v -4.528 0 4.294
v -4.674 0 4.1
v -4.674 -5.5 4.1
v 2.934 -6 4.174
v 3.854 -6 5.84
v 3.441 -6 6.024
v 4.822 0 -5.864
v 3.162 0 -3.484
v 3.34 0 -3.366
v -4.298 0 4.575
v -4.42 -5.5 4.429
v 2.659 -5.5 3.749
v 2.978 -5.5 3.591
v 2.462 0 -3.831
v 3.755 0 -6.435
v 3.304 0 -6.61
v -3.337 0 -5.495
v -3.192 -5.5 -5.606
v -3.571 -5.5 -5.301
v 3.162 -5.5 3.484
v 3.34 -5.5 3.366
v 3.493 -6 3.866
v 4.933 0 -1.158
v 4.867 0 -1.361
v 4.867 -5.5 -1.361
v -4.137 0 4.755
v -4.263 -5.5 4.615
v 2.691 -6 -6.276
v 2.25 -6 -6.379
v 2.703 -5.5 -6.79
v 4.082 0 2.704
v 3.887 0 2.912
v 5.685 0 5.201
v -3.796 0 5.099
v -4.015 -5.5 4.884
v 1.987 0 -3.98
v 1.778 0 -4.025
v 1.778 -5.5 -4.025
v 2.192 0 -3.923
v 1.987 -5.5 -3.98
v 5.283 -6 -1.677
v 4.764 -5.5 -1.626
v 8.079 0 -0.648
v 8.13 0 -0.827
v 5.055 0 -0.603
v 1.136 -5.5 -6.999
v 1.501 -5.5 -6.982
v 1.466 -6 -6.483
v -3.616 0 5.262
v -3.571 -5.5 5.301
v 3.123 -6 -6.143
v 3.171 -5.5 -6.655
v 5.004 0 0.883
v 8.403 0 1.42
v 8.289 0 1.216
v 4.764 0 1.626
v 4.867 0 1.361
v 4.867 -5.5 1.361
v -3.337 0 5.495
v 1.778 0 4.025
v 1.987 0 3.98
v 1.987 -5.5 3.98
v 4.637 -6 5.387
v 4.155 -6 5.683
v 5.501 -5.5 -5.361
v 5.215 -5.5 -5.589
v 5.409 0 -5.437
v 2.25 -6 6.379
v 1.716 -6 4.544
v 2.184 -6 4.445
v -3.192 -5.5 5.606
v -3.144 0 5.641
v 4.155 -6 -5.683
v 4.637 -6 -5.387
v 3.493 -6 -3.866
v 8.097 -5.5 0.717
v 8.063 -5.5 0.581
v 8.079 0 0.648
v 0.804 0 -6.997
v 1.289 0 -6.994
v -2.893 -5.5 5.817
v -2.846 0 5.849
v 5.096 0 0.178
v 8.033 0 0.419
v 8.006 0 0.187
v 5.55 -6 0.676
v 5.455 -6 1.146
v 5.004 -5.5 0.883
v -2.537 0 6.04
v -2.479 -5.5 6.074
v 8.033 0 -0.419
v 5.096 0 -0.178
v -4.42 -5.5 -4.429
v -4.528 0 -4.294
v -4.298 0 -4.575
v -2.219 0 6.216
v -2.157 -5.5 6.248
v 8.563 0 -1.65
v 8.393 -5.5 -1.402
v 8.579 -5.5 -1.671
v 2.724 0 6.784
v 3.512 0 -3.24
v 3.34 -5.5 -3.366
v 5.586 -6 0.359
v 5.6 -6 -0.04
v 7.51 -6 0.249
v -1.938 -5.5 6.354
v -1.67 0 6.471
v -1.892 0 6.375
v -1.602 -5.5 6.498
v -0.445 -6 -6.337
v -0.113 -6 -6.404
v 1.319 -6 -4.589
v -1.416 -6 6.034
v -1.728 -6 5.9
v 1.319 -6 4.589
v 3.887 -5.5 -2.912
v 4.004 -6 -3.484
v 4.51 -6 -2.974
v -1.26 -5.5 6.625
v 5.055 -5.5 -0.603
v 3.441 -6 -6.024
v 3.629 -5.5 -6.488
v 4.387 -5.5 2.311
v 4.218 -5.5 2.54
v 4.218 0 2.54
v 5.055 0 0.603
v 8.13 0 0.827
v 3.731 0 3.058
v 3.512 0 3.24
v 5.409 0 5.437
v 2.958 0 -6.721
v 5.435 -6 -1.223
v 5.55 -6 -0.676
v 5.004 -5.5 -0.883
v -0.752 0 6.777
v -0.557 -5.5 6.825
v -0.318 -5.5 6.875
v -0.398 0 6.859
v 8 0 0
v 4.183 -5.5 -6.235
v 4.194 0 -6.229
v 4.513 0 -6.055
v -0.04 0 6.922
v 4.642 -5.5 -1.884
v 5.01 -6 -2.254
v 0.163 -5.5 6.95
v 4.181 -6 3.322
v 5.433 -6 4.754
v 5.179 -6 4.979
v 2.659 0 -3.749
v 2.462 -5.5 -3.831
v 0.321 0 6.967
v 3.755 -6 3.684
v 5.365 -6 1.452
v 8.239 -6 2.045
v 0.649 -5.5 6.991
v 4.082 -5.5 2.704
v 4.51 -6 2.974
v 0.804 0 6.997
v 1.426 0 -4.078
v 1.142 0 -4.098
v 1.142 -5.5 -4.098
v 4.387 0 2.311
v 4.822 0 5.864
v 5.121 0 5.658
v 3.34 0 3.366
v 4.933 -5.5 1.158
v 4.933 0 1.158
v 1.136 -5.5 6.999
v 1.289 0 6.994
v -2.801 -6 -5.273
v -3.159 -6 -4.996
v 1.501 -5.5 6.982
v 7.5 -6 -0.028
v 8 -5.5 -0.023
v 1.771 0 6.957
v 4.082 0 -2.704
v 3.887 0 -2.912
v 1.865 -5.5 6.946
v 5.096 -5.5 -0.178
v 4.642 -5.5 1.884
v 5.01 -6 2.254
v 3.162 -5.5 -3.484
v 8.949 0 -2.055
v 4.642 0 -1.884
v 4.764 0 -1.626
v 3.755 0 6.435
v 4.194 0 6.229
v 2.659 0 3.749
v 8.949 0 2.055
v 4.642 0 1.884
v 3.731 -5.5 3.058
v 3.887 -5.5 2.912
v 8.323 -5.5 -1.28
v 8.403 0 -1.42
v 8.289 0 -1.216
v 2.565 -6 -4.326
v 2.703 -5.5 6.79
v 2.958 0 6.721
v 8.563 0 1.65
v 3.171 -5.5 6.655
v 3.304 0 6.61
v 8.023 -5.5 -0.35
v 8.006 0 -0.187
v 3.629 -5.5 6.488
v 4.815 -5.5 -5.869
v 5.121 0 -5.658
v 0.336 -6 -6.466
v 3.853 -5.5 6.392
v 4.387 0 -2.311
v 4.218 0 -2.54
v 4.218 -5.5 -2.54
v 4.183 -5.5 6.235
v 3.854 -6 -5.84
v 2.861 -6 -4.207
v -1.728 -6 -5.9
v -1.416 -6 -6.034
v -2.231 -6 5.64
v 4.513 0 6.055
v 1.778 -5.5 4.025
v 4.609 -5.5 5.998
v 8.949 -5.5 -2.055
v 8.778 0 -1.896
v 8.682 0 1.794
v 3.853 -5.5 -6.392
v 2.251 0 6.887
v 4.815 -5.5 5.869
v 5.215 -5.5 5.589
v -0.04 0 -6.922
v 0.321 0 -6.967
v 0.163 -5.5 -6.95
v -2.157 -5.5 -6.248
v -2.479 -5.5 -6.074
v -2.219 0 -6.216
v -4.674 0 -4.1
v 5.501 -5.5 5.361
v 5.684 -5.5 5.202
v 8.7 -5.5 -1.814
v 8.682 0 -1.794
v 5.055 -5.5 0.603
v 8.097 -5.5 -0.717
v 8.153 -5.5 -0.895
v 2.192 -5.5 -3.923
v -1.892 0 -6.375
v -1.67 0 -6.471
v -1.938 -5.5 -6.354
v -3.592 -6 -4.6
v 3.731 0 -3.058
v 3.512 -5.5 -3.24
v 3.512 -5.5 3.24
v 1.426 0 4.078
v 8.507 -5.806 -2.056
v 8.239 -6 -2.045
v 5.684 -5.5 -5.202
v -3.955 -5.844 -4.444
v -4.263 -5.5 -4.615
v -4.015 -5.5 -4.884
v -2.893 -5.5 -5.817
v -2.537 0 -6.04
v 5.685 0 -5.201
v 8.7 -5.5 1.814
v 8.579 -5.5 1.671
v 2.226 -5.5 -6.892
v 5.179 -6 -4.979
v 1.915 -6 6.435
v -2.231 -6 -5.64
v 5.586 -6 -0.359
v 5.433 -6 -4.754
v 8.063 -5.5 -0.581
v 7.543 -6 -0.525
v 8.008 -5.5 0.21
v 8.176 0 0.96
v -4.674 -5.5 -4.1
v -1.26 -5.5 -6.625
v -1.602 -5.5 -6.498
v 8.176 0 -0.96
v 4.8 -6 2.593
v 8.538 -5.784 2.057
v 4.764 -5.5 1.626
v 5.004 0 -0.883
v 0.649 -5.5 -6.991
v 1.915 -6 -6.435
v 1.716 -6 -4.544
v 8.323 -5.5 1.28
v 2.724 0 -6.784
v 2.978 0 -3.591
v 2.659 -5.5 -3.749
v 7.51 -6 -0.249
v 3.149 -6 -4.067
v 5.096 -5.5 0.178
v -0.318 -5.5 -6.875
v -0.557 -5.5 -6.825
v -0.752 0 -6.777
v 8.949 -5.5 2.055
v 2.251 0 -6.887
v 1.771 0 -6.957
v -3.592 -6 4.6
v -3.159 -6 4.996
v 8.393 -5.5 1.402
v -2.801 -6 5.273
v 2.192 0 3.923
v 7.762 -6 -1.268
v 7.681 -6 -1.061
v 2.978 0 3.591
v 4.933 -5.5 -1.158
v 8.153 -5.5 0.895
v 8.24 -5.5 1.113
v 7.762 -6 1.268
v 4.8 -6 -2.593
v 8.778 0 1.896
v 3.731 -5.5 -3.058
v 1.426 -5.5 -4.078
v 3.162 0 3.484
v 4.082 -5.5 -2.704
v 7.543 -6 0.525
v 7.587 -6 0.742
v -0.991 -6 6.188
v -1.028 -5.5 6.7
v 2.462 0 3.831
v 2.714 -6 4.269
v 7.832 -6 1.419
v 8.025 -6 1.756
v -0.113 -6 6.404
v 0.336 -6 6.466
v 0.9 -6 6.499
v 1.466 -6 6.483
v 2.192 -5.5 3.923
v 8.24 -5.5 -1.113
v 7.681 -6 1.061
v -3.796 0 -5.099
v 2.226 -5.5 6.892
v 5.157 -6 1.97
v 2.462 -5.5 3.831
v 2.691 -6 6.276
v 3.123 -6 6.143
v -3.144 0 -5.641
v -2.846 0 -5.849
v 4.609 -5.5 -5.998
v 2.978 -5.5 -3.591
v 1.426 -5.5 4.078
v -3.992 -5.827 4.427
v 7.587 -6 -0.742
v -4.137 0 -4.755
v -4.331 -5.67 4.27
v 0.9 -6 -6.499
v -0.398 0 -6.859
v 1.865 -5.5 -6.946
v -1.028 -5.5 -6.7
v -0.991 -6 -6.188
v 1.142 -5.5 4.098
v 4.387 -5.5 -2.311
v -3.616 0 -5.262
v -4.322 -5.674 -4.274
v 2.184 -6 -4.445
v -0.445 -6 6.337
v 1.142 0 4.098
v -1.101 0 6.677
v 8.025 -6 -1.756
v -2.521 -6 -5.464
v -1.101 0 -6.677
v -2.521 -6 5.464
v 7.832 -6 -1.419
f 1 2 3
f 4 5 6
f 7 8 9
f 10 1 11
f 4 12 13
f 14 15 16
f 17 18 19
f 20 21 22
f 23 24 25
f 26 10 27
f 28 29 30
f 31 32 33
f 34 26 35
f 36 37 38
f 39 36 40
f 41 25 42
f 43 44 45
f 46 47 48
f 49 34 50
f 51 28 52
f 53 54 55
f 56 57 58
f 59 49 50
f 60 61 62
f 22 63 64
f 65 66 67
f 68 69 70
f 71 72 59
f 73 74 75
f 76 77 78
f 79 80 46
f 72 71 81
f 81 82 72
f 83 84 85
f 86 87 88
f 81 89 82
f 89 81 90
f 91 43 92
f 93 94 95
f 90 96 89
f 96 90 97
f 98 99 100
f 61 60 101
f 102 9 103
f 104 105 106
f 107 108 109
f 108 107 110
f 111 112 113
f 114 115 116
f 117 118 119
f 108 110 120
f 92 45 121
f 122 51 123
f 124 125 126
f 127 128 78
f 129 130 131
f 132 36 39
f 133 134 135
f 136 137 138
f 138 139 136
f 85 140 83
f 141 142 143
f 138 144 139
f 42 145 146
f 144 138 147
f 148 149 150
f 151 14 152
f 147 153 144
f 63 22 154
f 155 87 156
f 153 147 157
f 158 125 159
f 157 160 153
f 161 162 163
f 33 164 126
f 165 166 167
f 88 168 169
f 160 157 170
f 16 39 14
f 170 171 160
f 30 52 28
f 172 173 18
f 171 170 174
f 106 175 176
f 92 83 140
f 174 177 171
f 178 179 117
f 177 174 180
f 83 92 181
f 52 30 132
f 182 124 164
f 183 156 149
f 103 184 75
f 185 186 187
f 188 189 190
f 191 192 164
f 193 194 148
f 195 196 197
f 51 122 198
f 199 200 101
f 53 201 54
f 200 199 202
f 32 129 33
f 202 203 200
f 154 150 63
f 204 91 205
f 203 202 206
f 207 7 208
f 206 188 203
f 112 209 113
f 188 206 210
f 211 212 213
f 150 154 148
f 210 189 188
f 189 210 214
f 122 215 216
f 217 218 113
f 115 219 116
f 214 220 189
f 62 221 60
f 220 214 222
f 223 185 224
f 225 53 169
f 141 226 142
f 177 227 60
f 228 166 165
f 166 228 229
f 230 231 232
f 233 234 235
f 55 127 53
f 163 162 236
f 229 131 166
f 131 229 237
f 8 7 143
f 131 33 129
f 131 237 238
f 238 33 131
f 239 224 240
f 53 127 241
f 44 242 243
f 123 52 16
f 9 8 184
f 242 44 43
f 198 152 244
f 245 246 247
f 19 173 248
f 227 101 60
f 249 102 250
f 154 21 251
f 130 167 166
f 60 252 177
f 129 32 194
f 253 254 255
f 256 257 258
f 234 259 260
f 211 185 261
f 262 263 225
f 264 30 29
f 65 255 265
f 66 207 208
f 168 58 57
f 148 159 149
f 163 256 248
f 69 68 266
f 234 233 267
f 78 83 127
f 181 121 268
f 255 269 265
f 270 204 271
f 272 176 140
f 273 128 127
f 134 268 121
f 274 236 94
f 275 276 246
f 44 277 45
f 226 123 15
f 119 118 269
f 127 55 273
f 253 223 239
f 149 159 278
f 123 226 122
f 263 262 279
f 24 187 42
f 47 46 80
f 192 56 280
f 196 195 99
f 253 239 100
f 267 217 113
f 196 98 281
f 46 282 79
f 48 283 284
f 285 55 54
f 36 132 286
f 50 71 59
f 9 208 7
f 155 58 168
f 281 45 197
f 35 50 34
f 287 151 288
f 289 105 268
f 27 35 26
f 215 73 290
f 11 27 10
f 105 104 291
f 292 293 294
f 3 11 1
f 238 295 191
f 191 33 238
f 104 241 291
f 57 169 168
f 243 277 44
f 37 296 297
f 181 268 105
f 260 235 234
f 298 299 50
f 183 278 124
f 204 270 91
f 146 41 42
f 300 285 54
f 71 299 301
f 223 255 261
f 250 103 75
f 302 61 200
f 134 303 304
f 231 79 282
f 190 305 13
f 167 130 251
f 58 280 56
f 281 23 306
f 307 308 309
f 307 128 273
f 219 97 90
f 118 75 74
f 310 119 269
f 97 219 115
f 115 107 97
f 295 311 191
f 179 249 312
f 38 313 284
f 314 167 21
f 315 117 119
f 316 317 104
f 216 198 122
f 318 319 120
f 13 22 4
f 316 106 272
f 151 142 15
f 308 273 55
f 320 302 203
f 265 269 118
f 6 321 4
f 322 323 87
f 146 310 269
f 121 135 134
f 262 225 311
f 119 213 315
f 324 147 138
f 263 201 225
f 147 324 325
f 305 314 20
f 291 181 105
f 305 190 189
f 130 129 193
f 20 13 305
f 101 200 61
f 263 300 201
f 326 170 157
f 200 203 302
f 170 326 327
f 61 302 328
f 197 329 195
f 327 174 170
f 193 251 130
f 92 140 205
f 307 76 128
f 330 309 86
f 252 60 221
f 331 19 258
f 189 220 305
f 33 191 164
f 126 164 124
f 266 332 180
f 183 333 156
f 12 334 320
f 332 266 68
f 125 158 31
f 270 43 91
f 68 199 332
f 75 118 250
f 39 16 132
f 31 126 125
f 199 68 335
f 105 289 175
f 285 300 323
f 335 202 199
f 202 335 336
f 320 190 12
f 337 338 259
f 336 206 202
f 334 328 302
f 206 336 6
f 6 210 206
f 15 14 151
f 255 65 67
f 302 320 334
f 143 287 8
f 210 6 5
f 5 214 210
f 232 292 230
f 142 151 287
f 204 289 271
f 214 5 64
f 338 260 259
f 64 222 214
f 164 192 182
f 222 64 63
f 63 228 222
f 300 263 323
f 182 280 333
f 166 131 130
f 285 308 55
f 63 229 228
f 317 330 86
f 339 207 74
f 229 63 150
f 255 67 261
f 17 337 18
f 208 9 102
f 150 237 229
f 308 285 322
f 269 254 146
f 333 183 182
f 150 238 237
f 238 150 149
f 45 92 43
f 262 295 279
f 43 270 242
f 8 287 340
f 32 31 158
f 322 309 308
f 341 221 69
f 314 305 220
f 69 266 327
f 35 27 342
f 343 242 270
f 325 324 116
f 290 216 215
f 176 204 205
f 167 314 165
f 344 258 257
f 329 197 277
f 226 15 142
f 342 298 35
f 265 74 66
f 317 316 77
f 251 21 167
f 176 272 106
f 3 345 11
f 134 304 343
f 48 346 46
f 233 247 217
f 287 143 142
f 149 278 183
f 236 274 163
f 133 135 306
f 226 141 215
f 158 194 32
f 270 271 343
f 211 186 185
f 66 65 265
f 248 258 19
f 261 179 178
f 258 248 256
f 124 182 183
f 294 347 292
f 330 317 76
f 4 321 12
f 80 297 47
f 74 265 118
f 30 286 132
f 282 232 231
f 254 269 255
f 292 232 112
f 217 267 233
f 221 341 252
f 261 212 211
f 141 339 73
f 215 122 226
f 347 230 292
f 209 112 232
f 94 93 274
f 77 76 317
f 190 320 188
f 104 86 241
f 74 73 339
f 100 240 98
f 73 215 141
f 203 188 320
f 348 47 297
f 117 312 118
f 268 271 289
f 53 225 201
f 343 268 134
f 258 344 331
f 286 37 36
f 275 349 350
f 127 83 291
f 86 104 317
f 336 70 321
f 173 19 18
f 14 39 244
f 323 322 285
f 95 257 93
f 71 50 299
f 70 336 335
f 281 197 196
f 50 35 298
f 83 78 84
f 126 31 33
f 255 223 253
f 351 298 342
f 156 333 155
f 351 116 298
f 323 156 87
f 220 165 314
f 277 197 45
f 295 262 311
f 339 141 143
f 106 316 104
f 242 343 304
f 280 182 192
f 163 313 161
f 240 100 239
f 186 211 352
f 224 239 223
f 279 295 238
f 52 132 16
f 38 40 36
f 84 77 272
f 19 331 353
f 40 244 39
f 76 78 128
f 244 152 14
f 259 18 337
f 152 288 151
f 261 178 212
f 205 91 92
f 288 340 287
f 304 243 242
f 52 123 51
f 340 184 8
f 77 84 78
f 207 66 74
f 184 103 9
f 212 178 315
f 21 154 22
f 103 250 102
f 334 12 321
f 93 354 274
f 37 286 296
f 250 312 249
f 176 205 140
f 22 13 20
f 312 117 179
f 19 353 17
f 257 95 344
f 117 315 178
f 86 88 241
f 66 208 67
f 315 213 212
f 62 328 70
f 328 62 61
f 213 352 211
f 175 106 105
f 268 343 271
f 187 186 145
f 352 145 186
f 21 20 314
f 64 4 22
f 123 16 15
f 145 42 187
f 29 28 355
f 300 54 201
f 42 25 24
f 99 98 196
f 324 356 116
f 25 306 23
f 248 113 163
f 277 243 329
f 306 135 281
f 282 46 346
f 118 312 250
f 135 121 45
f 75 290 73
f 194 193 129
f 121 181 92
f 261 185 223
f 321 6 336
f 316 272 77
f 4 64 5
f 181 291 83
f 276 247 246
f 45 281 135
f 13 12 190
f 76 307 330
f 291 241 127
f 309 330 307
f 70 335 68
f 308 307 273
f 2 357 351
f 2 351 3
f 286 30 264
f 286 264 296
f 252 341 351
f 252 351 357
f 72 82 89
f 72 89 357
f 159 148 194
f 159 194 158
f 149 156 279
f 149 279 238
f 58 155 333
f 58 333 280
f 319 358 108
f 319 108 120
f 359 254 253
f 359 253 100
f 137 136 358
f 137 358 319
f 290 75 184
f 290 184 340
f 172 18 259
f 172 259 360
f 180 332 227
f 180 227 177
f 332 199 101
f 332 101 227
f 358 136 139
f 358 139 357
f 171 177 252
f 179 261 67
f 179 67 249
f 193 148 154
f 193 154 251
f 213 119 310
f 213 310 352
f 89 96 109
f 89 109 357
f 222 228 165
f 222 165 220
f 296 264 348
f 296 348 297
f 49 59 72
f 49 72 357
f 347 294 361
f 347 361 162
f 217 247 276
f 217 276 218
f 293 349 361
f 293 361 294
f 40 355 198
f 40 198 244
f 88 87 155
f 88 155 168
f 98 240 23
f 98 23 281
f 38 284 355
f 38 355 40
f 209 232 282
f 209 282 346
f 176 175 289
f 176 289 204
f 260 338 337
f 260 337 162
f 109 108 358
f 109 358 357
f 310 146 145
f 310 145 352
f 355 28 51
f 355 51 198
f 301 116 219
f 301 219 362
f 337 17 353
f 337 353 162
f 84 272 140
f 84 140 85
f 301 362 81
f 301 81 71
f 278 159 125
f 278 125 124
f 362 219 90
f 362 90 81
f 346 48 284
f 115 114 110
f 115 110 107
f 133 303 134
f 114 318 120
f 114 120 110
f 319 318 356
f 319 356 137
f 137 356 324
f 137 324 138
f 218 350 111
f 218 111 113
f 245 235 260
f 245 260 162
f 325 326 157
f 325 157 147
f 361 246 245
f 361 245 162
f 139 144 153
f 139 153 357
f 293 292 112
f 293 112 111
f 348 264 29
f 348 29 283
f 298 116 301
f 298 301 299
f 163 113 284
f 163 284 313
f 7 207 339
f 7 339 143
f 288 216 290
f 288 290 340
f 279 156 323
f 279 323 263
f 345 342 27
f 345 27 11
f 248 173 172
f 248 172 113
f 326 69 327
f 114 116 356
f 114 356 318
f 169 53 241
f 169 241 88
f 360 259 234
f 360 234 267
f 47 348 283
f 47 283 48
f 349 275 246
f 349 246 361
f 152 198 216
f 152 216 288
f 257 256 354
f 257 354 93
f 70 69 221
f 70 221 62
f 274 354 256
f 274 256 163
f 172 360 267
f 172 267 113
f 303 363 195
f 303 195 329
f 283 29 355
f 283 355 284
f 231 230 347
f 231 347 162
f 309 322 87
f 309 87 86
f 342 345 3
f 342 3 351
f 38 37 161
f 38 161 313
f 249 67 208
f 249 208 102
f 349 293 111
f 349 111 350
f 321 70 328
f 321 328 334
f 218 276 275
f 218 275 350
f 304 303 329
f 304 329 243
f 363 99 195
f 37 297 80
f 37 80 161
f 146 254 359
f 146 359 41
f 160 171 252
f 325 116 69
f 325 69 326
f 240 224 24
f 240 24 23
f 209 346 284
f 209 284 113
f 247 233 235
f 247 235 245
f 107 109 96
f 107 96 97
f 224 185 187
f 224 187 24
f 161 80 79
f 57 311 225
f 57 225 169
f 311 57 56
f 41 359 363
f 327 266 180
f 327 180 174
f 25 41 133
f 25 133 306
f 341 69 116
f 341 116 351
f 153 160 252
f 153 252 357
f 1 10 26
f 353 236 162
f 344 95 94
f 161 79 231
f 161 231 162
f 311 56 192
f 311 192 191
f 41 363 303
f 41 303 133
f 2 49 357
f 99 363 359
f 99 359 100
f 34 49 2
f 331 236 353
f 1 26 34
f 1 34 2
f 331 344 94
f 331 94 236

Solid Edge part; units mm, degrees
sketch "Sketch1" plane through (0, 0, 0) normal (0, -1, 0) x (1, 0, 0)
  arc A0 (-4.6736, 4.1) -> (5.8626, 5.0354) centre (1, 0) cw
  line L0 (5.8626, 5.0354) -> (8.9488, 2.0551)
  line L1 (5.8626, -5.0354) -> (8.9488, -2.0551)
  arc A1 (5.8626, -5.0354) -> (-4.6736, -4.1) centre (1, 0) cw
  line L2 (1, -4.1) -> (-4.6736, -4.1)
  line L3 (1, 4.1) -> (-4.6736, 4.1)
  arc A2 (8.9488, -2.0551) -> (8.9488, 2.0551) centre (10.7, 0) cw
  arc A3 (1, 4.1) -> (1, -4.1) centre (1, 0) cw
extrude "Protrusion1" add sketch "Sketch1" along normal blind 6
extrude "ExtrudedCutout_1" [suppressed]
chamfer "Chamfer_1" distance 0.5 angle 45 8 edges at (5.1, -6, 0) (-1.8368, -6, 4.1) (-1.8368, -6, -4.1) (0.381, -6, 6.9726) (7.4057, -6, 3.5452) (7.4057, -6, -3.5452) (0.381, -6, -6.9726) (8, -6, 0)
properties material "ABS Plastic, medium impact"
